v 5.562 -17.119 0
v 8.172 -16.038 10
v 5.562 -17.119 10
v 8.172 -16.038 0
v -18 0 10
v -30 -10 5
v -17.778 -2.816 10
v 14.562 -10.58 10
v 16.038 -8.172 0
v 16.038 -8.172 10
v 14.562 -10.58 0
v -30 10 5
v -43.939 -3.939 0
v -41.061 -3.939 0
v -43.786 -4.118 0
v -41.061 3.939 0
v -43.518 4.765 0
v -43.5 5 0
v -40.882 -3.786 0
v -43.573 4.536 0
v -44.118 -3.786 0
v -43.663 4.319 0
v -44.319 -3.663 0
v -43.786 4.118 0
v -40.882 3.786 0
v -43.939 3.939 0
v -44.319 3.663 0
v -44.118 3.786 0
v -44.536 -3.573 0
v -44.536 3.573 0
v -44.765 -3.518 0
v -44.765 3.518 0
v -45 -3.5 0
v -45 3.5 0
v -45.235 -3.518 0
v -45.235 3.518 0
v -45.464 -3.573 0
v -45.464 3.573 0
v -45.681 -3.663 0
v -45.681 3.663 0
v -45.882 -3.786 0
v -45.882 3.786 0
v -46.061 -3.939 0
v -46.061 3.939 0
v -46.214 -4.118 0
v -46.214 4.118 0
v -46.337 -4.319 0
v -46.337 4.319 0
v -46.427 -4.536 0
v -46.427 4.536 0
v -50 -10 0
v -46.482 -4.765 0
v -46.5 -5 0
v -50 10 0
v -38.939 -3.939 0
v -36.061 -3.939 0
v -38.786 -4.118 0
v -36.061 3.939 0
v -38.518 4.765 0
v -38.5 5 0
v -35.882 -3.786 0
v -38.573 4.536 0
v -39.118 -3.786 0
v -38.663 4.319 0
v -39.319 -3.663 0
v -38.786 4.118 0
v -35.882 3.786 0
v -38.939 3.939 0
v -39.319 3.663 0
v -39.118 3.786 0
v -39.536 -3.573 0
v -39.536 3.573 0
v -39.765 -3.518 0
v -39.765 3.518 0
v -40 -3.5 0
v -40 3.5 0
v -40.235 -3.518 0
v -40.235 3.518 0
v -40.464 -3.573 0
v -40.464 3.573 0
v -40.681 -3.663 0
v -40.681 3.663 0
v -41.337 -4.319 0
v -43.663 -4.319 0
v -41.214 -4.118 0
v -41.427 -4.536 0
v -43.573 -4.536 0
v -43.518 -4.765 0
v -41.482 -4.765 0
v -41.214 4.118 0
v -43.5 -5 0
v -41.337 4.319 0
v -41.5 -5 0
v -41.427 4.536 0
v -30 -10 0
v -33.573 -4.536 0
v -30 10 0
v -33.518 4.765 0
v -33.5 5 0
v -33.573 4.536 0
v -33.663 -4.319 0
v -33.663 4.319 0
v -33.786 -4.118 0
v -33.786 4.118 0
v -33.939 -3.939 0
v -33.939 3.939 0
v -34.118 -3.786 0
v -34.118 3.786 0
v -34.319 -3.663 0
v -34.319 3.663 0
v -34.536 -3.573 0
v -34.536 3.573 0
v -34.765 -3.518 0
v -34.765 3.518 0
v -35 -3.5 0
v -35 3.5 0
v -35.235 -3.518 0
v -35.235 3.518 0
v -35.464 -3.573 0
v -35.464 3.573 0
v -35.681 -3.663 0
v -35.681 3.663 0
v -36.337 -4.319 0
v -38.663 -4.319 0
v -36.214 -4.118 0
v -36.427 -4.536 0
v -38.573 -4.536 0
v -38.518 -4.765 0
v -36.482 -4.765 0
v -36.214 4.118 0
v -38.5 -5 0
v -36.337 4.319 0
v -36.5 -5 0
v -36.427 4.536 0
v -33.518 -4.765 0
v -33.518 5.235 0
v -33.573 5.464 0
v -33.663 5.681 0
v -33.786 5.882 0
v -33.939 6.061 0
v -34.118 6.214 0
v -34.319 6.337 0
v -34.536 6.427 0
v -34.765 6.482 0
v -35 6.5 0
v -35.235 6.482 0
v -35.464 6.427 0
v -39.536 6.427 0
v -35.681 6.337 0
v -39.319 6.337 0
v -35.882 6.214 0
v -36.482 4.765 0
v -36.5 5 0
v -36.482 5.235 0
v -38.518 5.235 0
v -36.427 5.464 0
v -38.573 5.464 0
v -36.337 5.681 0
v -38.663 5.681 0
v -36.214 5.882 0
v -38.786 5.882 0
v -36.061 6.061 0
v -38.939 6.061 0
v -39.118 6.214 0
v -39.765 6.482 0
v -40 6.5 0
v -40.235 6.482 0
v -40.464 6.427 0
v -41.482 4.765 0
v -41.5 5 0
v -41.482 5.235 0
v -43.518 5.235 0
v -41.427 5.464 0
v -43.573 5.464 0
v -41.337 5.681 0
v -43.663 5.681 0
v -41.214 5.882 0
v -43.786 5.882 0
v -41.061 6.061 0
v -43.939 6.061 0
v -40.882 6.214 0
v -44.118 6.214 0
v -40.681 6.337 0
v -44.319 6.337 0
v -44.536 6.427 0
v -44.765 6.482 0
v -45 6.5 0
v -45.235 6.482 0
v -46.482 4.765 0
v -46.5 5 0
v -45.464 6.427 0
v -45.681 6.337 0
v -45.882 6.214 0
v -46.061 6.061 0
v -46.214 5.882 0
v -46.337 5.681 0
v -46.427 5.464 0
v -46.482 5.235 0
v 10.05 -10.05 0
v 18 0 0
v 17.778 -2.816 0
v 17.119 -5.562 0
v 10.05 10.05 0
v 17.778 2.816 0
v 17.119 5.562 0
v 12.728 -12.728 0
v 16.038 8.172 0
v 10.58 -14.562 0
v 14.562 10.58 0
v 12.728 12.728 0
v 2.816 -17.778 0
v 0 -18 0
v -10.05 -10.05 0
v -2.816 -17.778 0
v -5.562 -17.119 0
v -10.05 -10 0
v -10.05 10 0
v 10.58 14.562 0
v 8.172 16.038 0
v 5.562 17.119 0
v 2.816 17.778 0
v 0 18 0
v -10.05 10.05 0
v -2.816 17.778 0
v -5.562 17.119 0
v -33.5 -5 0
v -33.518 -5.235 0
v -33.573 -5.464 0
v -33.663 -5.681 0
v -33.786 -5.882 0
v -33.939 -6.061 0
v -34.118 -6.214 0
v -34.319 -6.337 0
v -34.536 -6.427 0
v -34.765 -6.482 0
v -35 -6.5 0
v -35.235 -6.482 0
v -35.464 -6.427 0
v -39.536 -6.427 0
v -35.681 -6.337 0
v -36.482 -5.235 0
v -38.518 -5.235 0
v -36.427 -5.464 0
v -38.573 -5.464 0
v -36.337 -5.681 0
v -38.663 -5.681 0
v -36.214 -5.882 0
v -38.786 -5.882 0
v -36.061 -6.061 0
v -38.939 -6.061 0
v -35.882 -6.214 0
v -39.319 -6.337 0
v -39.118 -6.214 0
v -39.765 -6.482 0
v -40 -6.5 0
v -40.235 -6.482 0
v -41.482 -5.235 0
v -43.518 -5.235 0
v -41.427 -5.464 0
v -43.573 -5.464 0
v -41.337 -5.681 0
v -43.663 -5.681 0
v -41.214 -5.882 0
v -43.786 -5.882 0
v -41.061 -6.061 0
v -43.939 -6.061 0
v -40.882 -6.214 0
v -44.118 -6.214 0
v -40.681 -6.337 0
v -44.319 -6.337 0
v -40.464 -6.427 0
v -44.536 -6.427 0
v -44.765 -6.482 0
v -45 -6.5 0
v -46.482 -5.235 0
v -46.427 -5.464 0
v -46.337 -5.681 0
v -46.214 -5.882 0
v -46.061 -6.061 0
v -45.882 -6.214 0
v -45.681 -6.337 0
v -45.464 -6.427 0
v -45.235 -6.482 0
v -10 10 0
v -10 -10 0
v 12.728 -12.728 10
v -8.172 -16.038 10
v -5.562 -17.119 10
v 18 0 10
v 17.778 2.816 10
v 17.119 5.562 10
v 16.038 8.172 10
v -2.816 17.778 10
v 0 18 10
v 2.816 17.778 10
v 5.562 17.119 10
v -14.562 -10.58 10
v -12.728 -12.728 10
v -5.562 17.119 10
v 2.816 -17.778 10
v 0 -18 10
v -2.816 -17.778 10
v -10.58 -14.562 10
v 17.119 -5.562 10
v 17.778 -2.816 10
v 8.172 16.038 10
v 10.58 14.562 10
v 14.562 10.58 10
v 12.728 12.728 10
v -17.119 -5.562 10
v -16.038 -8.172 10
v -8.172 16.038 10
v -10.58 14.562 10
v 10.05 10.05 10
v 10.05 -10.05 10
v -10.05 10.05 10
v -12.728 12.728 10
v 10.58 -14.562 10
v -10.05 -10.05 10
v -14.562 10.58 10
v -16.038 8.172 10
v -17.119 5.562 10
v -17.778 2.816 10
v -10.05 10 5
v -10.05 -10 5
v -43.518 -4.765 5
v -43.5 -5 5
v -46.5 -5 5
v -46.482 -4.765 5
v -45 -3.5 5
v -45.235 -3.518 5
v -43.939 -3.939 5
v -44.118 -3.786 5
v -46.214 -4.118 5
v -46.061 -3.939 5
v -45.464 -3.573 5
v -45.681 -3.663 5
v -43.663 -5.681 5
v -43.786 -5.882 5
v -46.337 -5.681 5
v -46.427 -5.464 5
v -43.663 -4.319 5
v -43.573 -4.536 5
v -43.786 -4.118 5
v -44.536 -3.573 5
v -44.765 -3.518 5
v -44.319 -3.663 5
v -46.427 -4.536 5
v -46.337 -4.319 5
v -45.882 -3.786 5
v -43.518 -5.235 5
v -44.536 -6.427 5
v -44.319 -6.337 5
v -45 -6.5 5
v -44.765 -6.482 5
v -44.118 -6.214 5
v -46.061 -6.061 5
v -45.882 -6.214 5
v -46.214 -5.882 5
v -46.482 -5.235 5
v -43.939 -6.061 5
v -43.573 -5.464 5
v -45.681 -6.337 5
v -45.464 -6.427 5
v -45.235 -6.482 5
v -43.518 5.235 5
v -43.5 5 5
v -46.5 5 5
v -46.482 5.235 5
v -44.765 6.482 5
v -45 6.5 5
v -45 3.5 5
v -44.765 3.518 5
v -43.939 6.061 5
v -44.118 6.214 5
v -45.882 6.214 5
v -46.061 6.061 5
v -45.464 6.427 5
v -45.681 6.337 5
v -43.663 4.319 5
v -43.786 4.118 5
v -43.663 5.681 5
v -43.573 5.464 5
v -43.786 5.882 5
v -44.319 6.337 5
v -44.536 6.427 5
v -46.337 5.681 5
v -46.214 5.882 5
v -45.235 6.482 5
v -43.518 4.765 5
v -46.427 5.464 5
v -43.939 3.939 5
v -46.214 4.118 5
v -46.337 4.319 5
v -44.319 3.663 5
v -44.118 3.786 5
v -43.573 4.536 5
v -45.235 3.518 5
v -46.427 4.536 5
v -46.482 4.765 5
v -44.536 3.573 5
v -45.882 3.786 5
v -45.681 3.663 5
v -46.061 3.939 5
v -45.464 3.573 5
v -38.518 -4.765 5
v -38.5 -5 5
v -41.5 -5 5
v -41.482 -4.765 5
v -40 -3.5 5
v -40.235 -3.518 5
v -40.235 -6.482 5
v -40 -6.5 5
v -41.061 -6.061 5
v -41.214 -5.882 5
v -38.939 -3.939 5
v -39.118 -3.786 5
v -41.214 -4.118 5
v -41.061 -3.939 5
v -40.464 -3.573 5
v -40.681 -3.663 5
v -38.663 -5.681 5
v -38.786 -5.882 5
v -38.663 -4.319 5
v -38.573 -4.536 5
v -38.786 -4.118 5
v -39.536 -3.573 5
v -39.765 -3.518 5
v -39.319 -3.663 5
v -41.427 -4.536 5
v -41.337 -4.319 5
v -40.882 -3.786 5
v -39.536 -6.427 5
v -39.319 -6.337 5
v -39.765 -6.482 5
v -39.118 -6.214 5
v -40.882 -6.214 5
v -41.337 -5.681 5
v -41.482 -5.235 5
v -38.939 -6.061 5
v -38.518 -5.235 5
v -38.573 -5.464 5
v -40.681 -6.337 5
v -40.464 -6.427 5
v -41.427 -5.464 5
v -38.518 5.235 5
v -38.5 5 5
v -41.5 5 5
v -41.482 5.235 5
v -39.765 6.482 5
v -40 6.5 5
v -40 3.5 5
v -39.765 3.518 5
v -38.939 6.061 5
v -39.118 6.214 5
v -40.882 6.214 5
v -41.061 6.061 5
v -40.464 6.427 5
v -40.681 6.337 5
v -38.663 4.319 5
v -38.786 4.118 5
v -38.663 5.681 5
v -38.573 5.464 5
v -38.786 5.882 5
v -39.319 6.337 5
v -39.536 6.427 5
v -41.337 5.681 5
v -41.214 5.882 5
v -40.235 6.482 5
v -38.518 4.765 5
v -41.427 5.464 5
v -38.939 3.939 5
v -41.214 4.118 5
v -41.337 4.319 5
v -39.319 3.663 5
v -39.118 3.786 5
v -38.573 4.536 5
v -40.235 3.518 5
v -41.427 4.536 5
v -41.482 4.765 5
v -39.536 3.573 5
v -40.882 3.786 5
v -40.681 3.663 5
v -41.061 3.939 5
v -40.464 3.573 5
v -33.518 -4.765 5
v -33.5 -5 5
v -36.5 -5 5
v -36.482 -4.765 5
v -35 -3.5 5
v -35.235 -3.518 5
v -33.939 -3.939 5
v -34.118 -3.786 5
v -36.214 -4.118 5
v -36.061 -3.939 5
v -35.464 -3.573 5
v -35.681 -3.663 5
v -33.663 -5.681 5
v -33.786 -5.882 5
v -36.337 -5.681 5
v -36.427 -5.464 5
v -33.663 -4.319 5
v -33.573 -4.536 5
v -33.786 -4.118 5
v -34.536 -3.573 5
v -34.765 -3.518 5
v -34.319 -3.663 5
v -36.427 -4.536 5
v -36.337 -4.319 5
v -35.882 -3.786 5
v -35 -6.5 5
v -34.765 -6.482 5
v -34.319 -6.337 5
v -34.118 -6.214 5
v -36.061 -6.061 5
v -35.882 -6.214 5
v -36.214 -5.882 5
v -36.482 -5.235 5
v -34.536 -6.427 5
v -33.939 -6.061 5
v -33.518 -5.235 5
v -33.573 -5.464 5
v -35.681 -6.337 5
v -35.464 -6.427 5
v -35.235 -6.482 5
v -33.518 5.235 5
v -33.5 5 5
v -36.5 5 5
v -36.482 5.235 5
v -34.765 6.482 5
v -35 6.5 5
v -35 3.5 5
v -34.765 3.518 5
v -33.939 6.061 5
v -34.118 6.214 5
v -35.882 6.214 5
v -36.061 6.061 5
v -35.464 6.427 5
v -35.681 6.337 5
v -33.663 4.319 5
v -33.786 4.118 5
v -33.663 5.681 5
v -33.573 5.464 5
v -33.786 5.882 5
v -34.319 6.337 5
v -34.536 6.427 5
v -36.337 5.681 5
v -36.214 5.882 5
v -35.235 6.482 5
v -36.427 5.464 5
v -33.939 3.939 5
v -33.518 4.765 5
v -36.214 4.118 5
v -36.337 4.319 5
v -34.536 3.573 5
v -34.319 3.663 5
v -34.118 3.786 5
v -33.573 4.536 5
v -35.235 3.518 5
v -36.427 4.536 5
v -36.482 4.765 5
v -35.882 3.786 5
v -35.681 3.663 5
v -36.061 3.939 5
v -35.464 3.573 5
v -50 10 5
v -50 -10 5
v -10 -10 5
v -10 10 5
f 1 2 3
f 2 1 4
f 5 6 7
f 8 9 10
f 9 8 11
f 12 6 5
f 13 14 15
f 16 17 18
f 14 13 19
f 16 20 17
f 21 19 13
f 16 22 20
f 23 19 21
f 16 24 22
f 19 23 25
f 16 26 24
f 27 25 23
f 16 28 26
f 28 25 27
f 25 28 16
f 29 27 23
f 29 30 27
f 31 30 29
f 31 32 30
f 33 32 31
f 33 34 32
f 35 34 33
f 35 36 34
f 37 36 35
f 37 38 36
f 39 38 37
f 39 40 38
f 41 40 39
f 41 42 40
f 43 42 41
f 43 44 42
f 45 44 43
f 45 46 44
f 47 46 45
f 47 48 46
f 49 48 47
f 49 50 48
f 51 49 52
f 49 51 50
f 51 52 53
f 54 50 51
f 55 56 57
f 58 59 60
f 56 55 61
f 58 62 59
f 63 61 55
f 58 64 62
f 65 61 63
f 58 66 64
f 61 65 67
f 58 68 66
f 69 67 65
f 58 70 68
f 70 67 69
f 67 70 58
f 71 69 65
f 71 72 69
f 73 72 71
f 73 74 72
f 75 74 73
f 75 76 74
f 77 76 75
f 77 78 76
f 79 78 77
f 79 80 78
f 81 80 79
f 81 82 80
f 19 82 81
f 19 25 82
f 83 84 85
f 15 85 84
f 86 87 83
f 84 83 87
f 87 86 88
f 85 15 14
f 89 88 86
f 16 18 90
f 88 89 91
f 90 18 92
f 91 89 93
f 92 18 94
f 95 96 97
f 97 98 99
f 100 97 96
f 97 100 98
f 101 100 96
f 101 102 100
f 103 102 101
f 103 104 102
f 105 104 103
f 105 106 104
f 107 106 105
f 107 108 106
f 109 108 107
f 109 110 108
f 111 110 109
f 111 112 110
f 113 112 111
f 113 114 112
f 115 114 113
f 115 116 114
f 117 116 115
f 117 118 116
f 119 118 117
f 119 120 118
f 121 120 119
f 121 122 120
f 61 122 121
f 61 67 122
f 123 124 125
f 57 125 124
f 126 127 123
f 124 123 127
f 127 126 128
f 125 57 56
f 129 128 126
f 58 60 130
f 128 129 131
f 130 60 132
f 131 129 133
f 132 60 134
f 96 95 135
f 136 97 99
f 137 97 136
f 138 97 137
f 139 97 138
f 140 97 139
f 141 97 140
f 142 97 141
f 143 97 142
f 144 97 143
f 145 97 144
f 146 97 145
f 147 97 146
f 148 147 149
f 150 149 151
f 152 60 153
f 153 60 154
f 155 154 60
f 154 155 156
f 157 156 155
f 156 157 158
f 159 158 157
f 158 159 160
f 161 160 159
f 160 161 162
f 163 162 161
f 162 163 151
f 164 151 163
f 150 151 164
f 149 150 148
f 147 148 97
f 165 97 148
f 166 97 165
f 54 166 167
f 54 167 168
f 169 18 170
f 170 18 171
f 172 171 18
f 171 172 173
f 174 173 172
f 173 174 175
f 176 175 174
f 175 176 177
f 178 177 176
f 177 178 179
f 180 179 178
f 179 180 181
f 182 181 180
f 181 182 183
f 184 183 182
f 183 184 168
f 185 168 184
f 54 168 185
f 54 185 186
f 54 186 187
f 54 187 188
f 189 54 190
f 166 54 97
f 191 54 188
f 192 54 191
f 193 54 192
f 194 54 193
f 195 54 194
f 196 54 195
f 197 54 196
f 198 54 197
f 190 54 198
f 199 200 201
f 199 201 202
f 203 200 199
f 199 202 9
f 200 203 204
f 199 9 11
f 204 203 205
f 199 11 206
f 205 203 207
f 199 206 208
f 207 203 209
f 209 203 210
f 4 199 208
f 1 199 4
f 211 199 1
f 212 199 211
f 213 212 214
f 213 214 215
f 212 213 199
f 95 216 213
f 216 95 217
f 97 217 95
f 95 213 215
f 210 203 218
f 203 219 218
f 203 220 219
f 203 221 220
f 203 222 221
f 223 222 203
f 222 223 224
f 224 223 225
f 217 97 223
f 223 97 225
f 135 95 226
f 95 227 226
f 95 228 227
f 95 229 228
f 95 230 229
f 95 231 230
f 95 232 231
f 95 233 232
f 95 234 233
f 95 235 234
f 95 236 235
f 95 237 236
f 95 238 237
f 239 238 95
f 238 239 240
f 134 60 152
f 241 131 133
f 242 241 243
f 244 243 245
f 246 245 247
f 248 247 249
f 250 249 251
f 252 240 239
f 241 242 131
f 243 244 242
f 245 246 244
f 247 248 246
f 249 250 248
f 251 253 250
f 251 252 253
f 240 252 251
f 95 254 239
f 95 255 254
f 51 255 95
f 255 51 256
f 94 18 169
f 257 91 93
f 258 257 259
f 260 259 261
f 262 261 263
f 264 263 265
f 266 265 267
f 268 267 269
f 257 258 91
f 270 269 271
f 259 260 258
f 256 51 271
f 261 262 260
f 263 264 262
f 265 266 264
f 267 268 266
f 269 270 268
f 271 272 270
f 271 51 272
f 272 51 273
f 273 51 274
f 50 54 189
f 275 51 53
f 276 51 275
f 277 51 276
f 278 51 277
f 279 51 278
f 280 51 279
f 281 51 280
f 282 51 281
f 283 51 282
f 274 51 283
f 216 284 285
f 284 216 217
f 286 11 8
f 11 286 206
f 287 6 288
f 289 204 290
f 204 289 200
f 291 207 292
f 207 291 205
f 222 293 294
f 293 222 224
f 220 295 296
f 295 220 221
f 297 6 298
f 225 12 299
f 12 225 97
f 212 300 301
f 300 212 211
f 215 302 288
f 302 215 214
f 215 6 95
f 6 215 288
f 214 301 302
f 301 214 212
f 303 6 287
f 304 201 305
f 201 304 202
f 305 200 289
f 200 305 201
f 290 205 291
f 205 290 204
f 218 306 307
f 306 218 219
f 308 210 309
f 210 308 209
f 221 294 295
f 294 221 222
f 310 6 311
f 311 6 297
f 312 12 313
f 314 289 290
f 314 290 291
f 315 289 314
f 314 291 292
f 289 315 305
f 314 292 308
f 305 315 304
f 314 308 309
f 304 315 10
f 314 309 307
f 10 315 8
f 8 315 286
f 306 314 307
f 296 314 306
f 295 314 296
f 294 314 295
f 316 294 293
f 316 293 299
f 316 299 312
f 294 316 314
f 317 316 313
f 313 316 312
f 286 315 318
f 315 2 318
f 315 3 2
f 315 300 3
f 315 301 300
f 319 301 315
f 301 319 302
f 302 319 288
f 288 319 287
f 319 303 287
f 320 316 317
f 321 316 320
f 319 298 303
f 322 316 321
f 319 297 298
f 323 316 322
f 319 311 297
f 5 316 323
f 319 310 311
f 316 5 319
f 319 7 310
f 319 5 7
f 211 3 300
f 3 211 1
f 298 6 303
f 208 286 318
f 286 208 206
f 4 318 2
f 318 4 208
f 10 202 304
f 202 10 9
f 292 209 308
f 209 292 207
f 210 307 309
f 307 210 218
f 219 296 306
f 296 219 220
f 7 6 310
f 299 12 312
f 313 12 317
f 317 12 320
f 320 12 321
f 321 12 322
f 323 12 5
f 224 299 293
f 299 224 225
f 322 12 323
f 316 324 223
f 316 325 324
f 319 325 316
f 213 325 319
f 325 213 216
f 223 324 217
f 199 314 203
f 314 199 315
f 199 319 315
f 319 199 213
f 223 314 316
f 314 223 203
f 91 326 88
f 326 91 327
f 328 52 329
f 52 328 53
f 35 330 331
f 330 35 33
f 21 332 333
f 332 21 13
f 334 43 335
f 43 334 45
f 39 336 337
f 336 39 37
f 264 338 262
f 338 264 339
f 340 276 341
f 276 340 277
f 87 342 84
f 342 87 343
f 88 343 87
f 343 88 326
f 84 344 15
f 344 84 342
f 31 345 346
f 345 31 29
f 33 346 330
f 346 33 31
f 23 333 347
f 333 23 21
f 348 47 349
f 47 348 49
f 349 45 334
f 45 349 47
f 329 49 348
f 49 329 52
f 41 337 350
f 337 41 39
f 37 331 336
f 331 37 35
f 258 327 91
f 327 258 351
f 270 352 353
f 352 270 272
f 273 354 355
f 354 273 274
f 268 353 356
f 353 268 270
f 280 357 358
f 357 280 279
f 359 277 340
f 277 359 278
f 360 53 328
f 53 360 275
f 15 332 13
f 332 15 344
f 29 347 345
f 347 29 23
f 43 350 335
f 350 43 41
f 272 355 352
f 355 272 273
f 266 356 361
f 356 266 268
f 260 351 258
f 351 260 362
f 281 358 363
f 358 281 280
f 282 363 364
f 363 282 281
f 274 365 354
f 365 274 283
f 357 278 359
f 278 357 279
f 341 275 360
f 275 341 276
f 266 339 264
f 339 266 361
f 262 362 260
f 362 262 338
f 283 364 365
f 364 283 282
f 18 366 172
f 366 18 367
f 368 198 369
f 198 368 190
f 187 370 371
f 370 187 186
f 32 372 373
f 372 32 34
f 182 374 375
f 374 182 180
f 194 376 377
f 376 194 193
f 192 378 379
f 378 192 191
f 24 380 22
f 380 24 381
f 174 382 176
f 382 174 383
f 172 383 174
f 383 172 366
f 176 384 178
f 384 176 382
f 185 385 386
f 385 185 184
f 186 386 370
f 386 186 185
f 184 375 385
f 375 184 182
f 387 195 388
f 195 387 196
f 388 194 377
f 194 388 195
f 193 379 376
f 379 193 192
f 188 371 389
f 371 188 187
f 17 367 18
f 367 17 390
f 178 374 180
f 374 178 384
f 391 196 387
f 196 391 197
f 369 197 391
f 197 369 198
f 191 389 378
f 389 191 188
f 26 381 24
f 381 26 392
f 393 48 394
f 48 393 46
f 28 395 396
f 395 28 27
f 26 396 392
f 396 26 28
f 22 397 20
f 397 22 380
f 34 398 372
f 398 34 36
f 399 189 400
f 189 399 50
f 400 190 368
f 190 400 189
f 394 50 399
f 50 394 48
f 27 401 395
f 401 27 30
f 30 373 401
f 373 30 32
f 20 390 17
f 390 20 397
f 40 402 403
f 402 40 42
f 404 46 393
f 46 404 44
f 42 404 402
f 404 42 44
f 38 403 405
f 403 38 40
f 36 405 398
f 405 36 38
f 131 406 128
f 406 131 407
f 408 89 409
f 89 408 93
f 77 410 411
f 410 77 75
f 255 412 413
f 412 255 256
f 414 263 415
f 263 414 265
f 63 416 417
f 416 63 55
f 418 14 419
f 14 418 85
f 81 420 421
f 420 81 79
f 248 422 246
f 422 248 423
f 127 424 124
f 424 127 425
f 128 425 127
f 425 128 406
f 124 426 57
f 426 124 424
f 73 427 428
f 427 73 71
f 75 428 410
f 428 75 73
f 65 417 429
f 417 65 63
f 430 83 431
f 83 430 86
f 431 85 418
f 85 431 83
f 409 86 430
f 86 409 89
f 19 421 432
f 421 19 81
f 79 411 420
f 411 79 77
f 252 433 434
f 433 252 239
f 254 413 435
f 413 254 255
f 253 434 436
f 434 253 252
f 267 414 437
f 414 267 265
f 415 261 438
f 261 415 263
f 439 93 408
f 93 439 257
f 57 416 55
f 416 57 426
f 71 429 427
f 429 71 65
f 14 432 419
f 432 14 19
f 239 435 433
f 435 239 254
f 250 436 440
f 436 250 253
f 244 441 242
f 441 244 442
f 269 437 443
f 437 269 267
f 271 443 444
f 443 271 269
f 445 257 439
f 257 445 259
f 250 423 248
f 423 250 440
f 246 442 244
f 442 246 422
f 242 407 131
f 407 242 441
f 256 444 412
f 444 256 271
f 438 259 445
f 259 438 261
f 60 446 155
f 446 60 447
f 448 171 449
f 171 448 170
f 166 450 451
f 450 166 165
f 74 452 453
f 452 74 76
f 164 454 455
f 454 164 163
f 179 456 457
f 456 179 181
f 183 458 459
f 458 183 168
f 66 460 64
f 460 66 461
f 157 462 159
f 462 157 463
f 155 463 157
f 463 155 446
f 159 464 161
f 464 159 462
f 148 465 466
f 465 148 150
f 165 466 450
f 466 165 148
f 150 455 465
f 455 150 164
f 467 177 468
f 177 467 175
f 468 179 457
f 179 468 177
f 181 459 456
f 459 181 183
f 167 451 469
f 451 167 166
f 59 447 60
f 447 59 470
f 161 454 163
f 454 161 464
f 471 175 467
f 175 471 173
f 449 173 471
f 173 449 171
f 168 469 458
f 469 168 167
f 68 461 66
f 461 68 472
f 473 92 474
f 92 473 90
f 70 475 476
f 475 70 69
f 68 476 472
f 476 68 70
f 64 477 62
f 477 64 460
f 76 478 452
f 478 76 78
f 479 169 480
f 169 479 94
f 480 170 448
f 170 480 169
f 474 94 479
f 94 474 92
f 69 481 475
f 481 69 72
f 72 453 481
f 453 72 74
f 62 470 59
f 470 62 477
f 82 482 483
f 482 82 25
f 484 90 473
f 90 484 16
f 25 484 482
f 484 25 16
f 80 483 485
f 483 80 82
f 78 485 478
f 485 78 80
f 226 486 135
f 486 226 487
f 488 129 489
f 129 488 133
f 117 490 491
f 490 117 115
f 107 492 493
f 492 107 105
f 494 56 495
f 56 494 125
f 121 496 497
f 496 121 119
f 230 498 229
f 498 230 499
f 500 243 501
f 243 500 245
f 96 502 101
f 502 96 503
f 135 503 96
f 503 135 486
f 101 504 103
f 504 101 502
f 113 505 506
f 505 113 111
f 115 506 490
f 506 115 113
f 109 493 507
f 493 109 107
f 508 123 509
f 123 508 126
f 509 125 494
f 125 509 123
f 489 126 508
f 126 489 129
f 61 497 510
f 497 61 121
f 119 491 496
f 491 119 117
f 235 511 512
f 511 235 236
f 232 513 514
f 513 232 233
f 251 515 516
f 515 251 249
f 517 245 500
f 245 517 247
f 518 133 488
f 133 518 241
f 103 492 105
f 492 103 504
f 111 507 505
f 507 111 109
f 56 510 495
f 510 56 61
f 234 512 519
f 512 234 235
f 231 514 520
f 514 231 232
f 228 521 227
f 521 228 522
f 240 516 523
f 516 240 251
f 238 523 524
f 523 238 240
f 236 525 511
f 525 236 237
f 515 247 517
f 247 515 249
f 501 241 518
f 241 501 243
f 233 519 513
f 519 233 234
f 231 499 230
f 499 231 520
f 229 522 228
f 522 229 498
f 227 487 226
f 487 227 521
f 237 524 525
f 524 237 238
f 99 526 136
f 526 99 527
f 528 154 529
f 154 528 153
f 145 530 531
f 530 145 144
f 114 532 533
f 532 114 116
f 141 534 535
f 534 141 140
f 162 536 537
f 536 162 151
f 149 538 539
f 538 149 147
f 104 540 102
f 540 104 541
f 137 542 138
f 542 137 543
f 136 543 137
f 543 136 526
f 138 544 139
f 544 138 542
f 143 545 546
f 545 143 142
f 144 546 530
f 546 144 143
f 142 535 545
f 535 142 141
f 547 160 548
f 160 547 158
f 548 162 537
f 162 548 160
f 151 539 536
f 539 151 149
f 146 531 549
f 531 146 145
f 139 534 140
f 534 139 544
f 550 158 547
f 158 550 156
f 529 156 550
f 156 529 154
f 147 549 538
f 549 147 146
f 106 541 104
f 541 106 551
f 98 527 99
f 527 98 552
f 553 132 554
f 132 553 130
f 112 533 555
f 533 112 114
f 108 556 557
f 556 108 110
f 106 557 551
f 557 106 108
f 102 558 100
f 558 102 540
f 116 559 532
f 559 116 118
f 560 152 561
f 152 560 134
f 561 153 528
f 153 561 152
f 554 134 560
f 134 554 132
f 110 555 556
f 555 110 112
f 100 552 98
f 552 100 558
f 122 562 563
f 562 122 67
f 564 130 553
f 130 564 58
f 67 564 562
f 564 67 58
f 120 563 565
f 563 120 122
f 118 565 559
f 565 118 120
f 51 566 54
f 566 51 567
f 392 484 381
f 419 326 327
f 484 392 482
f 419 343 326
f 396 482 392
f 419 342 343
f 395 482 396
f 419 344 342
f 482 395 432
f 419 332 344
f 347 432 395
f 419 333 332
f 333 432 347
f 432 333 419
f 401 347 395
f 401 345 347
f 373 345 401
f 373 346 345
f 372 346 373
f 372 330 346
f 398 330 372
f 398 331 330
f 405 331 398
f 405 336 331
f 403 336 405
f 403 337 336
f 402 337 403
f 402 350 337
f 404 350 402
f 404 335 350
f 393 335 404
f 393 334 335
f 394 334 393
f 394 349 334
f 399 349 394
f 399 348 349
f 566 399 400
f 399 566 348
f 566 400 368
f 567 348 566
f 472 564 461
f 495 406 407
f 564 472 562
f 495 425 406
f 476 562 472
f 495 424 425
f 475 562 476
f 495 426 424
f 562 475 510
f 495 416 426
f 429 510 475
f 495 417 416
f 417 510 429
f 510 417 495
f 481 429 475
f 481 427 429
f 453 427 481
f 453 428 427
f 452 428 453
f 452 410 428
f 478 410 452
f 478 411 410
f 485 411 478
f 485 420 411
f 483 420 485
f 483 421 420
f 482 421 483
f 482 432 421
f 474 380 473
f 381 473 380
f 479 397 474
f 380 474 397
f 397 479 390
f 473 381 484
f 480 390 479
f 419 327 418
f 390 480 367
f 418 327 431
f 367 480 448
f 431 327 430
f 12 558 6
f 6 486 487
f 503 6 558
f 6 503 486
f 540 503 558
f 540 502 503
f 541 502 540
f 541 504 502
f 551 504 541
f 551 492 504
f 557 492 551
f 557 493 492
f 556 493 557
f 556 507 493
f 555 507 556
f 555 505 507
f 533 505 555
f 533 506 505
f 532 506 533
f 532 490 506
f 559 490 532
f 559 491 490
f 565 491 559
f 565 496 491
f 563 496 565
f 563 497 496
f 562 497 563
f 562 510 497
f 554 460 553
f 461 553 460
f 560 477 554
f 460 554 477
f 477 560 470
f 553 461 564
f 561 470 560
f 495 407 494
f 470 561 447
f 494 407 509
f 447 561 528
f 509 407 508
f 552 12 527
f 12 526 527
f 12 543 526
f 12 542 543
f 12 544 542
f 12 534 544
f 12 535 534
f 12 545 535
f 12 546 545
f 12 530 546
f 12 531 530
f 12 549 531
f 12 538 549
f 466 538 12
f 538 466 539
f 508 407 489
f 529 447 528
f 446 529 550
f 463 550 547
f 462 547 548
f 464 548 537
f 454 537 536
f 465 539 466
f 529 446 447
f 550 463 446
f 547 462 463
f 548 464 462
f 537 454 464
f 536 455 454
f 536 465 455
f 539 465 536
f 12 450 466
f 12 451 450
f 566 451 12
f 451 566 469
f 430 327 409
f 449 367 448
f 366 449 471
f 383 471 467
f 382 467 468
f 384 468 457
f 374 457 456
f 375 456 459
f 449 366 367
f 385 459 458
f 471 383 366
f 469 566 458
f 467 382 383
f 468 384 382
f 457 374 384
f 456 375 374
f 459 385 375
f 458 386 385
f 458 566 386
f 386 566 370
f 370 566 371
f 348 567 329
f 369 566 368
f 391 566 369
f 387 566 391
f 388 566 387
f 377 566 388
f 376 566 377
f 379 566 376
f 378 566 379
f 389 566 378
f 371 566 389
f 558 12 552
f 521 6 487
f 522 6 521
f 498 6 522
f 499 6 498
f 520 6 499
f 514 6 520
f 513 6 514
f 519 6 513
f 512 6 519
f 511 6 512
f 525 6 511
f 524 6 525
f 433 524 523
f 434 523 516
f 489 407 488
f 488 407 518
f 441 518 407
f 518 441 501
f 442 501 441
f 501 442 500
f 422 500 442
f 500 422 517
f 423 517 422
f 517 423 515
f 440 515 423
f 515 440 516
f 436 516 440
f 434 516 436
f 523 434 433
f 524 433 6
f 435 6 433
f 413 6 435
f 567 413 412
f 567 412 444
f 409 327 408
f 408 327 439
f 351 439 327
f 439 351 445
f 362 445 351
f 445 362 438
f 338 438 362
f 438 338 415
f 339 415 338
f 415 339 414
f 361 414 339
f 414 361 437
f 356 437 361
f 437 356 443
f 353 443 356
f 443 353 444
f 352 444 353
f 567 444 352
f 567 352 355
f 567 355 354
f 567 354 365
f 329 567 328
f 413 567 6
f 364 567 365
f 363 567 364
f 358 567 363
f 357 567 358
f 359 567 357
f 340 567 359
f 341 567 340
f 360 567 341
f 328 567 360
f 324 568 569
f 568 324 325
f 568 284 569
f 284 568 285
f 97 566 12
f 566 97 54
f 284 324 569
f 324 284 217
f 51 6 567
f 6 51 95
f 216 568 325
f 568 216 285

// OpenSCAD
if (false) {
difference(){
 
 union(){
 hull(){
     translate([0,0,0])cylinder(r=60/2, h=30, $fn=40);
     translate([-30/2+40,-30/2,0])cube([30,30,30]);      
 }
 translate([-30,0,0])cylinder(r=3, h=30, $fn=40);
 }
 translate([0,0,-1])cylinder(r=47.1/2, h=32, $fn=40);
 translate([30,-20/2,(30-20)/2])cube([40,20,20]);  
 
translate([0,-53/2,-2])cylinder(r=2.2/2, h=60, $fn=40);
translate([0,+53/2,-2])cylinder(r=2.2/2, h=60, $fn=40);
translate([-53/2,0,-2])cylinder(r=2.2/2, h=60, $fn=40);
translate([+53/2,0,-2])cylinder(r=2.2/2, h=60, $fn=40);
 
translate([50-15,7,-2])cylinder(r=2.2/2, h=60, $fn=40);
translate([50-15,-7,-2])cylinder(r=2.2/2, h=60, $fn=40);
translate([50,7,-2])cylinder(r=2.2/2, h=60, $fn=40);
translate([50,-7,-2])cylinder(r=2.2/2, h=60, $fn=40);
 
translate([50-15,+7,27])cylinder(r=5/2, h=10, $fn=40); 
translate([50-15,-7,27])cylinder(r=5/2, h=10, $fn=40); 
translate([50,+7,27])cylinder(r=5/2, h=10, $fn=40); 
translate([50,-7,27])cylinder(r=5/2, h=10, $fn=40);  
 
translate([50-15,+7,-10+3])cylinder(r=5/2, h=10, $fn=40); 
translate([50-15,-7,-10+3])cylinder(r=5/2, h=10, $fn=40); 
translate([50,+7,-10+3])cylinder(r=5/2, h=10, $fn=40); 
translate([50,-7,-10+3])cylinder(r=5/2, h=10, $fn=40); 
}



difference(){
translate([0,0,11])cylinder(r=60/2, h=30-2*11, $fn=40);
translate([0,0,-1])cylinder(r=44/2, h=32, $fn=40);
}

}



difference(){
hull(){
translate([0,0,0])cylinder(r=36/2, h=10, $fn=40);
 translate([-30,-20/2,0])cube([30,20,5]); 
}
translate([-20.1/2,-20.1/2,-1])cube([20.1,20.1,42]);   
 
}
difference(){
translate([-50,-20/2,0])cube([40,20,5]); 
    

for ( i = [1 : 3] ){
    x = -50 + 5*i;
    translate([x,-5,-1])cylinder(r=3/2, h=15, $fn=40);
    translate([x,+5,-1])cylinder(r=3/2, h=15, $fn=40);
}
    
}
